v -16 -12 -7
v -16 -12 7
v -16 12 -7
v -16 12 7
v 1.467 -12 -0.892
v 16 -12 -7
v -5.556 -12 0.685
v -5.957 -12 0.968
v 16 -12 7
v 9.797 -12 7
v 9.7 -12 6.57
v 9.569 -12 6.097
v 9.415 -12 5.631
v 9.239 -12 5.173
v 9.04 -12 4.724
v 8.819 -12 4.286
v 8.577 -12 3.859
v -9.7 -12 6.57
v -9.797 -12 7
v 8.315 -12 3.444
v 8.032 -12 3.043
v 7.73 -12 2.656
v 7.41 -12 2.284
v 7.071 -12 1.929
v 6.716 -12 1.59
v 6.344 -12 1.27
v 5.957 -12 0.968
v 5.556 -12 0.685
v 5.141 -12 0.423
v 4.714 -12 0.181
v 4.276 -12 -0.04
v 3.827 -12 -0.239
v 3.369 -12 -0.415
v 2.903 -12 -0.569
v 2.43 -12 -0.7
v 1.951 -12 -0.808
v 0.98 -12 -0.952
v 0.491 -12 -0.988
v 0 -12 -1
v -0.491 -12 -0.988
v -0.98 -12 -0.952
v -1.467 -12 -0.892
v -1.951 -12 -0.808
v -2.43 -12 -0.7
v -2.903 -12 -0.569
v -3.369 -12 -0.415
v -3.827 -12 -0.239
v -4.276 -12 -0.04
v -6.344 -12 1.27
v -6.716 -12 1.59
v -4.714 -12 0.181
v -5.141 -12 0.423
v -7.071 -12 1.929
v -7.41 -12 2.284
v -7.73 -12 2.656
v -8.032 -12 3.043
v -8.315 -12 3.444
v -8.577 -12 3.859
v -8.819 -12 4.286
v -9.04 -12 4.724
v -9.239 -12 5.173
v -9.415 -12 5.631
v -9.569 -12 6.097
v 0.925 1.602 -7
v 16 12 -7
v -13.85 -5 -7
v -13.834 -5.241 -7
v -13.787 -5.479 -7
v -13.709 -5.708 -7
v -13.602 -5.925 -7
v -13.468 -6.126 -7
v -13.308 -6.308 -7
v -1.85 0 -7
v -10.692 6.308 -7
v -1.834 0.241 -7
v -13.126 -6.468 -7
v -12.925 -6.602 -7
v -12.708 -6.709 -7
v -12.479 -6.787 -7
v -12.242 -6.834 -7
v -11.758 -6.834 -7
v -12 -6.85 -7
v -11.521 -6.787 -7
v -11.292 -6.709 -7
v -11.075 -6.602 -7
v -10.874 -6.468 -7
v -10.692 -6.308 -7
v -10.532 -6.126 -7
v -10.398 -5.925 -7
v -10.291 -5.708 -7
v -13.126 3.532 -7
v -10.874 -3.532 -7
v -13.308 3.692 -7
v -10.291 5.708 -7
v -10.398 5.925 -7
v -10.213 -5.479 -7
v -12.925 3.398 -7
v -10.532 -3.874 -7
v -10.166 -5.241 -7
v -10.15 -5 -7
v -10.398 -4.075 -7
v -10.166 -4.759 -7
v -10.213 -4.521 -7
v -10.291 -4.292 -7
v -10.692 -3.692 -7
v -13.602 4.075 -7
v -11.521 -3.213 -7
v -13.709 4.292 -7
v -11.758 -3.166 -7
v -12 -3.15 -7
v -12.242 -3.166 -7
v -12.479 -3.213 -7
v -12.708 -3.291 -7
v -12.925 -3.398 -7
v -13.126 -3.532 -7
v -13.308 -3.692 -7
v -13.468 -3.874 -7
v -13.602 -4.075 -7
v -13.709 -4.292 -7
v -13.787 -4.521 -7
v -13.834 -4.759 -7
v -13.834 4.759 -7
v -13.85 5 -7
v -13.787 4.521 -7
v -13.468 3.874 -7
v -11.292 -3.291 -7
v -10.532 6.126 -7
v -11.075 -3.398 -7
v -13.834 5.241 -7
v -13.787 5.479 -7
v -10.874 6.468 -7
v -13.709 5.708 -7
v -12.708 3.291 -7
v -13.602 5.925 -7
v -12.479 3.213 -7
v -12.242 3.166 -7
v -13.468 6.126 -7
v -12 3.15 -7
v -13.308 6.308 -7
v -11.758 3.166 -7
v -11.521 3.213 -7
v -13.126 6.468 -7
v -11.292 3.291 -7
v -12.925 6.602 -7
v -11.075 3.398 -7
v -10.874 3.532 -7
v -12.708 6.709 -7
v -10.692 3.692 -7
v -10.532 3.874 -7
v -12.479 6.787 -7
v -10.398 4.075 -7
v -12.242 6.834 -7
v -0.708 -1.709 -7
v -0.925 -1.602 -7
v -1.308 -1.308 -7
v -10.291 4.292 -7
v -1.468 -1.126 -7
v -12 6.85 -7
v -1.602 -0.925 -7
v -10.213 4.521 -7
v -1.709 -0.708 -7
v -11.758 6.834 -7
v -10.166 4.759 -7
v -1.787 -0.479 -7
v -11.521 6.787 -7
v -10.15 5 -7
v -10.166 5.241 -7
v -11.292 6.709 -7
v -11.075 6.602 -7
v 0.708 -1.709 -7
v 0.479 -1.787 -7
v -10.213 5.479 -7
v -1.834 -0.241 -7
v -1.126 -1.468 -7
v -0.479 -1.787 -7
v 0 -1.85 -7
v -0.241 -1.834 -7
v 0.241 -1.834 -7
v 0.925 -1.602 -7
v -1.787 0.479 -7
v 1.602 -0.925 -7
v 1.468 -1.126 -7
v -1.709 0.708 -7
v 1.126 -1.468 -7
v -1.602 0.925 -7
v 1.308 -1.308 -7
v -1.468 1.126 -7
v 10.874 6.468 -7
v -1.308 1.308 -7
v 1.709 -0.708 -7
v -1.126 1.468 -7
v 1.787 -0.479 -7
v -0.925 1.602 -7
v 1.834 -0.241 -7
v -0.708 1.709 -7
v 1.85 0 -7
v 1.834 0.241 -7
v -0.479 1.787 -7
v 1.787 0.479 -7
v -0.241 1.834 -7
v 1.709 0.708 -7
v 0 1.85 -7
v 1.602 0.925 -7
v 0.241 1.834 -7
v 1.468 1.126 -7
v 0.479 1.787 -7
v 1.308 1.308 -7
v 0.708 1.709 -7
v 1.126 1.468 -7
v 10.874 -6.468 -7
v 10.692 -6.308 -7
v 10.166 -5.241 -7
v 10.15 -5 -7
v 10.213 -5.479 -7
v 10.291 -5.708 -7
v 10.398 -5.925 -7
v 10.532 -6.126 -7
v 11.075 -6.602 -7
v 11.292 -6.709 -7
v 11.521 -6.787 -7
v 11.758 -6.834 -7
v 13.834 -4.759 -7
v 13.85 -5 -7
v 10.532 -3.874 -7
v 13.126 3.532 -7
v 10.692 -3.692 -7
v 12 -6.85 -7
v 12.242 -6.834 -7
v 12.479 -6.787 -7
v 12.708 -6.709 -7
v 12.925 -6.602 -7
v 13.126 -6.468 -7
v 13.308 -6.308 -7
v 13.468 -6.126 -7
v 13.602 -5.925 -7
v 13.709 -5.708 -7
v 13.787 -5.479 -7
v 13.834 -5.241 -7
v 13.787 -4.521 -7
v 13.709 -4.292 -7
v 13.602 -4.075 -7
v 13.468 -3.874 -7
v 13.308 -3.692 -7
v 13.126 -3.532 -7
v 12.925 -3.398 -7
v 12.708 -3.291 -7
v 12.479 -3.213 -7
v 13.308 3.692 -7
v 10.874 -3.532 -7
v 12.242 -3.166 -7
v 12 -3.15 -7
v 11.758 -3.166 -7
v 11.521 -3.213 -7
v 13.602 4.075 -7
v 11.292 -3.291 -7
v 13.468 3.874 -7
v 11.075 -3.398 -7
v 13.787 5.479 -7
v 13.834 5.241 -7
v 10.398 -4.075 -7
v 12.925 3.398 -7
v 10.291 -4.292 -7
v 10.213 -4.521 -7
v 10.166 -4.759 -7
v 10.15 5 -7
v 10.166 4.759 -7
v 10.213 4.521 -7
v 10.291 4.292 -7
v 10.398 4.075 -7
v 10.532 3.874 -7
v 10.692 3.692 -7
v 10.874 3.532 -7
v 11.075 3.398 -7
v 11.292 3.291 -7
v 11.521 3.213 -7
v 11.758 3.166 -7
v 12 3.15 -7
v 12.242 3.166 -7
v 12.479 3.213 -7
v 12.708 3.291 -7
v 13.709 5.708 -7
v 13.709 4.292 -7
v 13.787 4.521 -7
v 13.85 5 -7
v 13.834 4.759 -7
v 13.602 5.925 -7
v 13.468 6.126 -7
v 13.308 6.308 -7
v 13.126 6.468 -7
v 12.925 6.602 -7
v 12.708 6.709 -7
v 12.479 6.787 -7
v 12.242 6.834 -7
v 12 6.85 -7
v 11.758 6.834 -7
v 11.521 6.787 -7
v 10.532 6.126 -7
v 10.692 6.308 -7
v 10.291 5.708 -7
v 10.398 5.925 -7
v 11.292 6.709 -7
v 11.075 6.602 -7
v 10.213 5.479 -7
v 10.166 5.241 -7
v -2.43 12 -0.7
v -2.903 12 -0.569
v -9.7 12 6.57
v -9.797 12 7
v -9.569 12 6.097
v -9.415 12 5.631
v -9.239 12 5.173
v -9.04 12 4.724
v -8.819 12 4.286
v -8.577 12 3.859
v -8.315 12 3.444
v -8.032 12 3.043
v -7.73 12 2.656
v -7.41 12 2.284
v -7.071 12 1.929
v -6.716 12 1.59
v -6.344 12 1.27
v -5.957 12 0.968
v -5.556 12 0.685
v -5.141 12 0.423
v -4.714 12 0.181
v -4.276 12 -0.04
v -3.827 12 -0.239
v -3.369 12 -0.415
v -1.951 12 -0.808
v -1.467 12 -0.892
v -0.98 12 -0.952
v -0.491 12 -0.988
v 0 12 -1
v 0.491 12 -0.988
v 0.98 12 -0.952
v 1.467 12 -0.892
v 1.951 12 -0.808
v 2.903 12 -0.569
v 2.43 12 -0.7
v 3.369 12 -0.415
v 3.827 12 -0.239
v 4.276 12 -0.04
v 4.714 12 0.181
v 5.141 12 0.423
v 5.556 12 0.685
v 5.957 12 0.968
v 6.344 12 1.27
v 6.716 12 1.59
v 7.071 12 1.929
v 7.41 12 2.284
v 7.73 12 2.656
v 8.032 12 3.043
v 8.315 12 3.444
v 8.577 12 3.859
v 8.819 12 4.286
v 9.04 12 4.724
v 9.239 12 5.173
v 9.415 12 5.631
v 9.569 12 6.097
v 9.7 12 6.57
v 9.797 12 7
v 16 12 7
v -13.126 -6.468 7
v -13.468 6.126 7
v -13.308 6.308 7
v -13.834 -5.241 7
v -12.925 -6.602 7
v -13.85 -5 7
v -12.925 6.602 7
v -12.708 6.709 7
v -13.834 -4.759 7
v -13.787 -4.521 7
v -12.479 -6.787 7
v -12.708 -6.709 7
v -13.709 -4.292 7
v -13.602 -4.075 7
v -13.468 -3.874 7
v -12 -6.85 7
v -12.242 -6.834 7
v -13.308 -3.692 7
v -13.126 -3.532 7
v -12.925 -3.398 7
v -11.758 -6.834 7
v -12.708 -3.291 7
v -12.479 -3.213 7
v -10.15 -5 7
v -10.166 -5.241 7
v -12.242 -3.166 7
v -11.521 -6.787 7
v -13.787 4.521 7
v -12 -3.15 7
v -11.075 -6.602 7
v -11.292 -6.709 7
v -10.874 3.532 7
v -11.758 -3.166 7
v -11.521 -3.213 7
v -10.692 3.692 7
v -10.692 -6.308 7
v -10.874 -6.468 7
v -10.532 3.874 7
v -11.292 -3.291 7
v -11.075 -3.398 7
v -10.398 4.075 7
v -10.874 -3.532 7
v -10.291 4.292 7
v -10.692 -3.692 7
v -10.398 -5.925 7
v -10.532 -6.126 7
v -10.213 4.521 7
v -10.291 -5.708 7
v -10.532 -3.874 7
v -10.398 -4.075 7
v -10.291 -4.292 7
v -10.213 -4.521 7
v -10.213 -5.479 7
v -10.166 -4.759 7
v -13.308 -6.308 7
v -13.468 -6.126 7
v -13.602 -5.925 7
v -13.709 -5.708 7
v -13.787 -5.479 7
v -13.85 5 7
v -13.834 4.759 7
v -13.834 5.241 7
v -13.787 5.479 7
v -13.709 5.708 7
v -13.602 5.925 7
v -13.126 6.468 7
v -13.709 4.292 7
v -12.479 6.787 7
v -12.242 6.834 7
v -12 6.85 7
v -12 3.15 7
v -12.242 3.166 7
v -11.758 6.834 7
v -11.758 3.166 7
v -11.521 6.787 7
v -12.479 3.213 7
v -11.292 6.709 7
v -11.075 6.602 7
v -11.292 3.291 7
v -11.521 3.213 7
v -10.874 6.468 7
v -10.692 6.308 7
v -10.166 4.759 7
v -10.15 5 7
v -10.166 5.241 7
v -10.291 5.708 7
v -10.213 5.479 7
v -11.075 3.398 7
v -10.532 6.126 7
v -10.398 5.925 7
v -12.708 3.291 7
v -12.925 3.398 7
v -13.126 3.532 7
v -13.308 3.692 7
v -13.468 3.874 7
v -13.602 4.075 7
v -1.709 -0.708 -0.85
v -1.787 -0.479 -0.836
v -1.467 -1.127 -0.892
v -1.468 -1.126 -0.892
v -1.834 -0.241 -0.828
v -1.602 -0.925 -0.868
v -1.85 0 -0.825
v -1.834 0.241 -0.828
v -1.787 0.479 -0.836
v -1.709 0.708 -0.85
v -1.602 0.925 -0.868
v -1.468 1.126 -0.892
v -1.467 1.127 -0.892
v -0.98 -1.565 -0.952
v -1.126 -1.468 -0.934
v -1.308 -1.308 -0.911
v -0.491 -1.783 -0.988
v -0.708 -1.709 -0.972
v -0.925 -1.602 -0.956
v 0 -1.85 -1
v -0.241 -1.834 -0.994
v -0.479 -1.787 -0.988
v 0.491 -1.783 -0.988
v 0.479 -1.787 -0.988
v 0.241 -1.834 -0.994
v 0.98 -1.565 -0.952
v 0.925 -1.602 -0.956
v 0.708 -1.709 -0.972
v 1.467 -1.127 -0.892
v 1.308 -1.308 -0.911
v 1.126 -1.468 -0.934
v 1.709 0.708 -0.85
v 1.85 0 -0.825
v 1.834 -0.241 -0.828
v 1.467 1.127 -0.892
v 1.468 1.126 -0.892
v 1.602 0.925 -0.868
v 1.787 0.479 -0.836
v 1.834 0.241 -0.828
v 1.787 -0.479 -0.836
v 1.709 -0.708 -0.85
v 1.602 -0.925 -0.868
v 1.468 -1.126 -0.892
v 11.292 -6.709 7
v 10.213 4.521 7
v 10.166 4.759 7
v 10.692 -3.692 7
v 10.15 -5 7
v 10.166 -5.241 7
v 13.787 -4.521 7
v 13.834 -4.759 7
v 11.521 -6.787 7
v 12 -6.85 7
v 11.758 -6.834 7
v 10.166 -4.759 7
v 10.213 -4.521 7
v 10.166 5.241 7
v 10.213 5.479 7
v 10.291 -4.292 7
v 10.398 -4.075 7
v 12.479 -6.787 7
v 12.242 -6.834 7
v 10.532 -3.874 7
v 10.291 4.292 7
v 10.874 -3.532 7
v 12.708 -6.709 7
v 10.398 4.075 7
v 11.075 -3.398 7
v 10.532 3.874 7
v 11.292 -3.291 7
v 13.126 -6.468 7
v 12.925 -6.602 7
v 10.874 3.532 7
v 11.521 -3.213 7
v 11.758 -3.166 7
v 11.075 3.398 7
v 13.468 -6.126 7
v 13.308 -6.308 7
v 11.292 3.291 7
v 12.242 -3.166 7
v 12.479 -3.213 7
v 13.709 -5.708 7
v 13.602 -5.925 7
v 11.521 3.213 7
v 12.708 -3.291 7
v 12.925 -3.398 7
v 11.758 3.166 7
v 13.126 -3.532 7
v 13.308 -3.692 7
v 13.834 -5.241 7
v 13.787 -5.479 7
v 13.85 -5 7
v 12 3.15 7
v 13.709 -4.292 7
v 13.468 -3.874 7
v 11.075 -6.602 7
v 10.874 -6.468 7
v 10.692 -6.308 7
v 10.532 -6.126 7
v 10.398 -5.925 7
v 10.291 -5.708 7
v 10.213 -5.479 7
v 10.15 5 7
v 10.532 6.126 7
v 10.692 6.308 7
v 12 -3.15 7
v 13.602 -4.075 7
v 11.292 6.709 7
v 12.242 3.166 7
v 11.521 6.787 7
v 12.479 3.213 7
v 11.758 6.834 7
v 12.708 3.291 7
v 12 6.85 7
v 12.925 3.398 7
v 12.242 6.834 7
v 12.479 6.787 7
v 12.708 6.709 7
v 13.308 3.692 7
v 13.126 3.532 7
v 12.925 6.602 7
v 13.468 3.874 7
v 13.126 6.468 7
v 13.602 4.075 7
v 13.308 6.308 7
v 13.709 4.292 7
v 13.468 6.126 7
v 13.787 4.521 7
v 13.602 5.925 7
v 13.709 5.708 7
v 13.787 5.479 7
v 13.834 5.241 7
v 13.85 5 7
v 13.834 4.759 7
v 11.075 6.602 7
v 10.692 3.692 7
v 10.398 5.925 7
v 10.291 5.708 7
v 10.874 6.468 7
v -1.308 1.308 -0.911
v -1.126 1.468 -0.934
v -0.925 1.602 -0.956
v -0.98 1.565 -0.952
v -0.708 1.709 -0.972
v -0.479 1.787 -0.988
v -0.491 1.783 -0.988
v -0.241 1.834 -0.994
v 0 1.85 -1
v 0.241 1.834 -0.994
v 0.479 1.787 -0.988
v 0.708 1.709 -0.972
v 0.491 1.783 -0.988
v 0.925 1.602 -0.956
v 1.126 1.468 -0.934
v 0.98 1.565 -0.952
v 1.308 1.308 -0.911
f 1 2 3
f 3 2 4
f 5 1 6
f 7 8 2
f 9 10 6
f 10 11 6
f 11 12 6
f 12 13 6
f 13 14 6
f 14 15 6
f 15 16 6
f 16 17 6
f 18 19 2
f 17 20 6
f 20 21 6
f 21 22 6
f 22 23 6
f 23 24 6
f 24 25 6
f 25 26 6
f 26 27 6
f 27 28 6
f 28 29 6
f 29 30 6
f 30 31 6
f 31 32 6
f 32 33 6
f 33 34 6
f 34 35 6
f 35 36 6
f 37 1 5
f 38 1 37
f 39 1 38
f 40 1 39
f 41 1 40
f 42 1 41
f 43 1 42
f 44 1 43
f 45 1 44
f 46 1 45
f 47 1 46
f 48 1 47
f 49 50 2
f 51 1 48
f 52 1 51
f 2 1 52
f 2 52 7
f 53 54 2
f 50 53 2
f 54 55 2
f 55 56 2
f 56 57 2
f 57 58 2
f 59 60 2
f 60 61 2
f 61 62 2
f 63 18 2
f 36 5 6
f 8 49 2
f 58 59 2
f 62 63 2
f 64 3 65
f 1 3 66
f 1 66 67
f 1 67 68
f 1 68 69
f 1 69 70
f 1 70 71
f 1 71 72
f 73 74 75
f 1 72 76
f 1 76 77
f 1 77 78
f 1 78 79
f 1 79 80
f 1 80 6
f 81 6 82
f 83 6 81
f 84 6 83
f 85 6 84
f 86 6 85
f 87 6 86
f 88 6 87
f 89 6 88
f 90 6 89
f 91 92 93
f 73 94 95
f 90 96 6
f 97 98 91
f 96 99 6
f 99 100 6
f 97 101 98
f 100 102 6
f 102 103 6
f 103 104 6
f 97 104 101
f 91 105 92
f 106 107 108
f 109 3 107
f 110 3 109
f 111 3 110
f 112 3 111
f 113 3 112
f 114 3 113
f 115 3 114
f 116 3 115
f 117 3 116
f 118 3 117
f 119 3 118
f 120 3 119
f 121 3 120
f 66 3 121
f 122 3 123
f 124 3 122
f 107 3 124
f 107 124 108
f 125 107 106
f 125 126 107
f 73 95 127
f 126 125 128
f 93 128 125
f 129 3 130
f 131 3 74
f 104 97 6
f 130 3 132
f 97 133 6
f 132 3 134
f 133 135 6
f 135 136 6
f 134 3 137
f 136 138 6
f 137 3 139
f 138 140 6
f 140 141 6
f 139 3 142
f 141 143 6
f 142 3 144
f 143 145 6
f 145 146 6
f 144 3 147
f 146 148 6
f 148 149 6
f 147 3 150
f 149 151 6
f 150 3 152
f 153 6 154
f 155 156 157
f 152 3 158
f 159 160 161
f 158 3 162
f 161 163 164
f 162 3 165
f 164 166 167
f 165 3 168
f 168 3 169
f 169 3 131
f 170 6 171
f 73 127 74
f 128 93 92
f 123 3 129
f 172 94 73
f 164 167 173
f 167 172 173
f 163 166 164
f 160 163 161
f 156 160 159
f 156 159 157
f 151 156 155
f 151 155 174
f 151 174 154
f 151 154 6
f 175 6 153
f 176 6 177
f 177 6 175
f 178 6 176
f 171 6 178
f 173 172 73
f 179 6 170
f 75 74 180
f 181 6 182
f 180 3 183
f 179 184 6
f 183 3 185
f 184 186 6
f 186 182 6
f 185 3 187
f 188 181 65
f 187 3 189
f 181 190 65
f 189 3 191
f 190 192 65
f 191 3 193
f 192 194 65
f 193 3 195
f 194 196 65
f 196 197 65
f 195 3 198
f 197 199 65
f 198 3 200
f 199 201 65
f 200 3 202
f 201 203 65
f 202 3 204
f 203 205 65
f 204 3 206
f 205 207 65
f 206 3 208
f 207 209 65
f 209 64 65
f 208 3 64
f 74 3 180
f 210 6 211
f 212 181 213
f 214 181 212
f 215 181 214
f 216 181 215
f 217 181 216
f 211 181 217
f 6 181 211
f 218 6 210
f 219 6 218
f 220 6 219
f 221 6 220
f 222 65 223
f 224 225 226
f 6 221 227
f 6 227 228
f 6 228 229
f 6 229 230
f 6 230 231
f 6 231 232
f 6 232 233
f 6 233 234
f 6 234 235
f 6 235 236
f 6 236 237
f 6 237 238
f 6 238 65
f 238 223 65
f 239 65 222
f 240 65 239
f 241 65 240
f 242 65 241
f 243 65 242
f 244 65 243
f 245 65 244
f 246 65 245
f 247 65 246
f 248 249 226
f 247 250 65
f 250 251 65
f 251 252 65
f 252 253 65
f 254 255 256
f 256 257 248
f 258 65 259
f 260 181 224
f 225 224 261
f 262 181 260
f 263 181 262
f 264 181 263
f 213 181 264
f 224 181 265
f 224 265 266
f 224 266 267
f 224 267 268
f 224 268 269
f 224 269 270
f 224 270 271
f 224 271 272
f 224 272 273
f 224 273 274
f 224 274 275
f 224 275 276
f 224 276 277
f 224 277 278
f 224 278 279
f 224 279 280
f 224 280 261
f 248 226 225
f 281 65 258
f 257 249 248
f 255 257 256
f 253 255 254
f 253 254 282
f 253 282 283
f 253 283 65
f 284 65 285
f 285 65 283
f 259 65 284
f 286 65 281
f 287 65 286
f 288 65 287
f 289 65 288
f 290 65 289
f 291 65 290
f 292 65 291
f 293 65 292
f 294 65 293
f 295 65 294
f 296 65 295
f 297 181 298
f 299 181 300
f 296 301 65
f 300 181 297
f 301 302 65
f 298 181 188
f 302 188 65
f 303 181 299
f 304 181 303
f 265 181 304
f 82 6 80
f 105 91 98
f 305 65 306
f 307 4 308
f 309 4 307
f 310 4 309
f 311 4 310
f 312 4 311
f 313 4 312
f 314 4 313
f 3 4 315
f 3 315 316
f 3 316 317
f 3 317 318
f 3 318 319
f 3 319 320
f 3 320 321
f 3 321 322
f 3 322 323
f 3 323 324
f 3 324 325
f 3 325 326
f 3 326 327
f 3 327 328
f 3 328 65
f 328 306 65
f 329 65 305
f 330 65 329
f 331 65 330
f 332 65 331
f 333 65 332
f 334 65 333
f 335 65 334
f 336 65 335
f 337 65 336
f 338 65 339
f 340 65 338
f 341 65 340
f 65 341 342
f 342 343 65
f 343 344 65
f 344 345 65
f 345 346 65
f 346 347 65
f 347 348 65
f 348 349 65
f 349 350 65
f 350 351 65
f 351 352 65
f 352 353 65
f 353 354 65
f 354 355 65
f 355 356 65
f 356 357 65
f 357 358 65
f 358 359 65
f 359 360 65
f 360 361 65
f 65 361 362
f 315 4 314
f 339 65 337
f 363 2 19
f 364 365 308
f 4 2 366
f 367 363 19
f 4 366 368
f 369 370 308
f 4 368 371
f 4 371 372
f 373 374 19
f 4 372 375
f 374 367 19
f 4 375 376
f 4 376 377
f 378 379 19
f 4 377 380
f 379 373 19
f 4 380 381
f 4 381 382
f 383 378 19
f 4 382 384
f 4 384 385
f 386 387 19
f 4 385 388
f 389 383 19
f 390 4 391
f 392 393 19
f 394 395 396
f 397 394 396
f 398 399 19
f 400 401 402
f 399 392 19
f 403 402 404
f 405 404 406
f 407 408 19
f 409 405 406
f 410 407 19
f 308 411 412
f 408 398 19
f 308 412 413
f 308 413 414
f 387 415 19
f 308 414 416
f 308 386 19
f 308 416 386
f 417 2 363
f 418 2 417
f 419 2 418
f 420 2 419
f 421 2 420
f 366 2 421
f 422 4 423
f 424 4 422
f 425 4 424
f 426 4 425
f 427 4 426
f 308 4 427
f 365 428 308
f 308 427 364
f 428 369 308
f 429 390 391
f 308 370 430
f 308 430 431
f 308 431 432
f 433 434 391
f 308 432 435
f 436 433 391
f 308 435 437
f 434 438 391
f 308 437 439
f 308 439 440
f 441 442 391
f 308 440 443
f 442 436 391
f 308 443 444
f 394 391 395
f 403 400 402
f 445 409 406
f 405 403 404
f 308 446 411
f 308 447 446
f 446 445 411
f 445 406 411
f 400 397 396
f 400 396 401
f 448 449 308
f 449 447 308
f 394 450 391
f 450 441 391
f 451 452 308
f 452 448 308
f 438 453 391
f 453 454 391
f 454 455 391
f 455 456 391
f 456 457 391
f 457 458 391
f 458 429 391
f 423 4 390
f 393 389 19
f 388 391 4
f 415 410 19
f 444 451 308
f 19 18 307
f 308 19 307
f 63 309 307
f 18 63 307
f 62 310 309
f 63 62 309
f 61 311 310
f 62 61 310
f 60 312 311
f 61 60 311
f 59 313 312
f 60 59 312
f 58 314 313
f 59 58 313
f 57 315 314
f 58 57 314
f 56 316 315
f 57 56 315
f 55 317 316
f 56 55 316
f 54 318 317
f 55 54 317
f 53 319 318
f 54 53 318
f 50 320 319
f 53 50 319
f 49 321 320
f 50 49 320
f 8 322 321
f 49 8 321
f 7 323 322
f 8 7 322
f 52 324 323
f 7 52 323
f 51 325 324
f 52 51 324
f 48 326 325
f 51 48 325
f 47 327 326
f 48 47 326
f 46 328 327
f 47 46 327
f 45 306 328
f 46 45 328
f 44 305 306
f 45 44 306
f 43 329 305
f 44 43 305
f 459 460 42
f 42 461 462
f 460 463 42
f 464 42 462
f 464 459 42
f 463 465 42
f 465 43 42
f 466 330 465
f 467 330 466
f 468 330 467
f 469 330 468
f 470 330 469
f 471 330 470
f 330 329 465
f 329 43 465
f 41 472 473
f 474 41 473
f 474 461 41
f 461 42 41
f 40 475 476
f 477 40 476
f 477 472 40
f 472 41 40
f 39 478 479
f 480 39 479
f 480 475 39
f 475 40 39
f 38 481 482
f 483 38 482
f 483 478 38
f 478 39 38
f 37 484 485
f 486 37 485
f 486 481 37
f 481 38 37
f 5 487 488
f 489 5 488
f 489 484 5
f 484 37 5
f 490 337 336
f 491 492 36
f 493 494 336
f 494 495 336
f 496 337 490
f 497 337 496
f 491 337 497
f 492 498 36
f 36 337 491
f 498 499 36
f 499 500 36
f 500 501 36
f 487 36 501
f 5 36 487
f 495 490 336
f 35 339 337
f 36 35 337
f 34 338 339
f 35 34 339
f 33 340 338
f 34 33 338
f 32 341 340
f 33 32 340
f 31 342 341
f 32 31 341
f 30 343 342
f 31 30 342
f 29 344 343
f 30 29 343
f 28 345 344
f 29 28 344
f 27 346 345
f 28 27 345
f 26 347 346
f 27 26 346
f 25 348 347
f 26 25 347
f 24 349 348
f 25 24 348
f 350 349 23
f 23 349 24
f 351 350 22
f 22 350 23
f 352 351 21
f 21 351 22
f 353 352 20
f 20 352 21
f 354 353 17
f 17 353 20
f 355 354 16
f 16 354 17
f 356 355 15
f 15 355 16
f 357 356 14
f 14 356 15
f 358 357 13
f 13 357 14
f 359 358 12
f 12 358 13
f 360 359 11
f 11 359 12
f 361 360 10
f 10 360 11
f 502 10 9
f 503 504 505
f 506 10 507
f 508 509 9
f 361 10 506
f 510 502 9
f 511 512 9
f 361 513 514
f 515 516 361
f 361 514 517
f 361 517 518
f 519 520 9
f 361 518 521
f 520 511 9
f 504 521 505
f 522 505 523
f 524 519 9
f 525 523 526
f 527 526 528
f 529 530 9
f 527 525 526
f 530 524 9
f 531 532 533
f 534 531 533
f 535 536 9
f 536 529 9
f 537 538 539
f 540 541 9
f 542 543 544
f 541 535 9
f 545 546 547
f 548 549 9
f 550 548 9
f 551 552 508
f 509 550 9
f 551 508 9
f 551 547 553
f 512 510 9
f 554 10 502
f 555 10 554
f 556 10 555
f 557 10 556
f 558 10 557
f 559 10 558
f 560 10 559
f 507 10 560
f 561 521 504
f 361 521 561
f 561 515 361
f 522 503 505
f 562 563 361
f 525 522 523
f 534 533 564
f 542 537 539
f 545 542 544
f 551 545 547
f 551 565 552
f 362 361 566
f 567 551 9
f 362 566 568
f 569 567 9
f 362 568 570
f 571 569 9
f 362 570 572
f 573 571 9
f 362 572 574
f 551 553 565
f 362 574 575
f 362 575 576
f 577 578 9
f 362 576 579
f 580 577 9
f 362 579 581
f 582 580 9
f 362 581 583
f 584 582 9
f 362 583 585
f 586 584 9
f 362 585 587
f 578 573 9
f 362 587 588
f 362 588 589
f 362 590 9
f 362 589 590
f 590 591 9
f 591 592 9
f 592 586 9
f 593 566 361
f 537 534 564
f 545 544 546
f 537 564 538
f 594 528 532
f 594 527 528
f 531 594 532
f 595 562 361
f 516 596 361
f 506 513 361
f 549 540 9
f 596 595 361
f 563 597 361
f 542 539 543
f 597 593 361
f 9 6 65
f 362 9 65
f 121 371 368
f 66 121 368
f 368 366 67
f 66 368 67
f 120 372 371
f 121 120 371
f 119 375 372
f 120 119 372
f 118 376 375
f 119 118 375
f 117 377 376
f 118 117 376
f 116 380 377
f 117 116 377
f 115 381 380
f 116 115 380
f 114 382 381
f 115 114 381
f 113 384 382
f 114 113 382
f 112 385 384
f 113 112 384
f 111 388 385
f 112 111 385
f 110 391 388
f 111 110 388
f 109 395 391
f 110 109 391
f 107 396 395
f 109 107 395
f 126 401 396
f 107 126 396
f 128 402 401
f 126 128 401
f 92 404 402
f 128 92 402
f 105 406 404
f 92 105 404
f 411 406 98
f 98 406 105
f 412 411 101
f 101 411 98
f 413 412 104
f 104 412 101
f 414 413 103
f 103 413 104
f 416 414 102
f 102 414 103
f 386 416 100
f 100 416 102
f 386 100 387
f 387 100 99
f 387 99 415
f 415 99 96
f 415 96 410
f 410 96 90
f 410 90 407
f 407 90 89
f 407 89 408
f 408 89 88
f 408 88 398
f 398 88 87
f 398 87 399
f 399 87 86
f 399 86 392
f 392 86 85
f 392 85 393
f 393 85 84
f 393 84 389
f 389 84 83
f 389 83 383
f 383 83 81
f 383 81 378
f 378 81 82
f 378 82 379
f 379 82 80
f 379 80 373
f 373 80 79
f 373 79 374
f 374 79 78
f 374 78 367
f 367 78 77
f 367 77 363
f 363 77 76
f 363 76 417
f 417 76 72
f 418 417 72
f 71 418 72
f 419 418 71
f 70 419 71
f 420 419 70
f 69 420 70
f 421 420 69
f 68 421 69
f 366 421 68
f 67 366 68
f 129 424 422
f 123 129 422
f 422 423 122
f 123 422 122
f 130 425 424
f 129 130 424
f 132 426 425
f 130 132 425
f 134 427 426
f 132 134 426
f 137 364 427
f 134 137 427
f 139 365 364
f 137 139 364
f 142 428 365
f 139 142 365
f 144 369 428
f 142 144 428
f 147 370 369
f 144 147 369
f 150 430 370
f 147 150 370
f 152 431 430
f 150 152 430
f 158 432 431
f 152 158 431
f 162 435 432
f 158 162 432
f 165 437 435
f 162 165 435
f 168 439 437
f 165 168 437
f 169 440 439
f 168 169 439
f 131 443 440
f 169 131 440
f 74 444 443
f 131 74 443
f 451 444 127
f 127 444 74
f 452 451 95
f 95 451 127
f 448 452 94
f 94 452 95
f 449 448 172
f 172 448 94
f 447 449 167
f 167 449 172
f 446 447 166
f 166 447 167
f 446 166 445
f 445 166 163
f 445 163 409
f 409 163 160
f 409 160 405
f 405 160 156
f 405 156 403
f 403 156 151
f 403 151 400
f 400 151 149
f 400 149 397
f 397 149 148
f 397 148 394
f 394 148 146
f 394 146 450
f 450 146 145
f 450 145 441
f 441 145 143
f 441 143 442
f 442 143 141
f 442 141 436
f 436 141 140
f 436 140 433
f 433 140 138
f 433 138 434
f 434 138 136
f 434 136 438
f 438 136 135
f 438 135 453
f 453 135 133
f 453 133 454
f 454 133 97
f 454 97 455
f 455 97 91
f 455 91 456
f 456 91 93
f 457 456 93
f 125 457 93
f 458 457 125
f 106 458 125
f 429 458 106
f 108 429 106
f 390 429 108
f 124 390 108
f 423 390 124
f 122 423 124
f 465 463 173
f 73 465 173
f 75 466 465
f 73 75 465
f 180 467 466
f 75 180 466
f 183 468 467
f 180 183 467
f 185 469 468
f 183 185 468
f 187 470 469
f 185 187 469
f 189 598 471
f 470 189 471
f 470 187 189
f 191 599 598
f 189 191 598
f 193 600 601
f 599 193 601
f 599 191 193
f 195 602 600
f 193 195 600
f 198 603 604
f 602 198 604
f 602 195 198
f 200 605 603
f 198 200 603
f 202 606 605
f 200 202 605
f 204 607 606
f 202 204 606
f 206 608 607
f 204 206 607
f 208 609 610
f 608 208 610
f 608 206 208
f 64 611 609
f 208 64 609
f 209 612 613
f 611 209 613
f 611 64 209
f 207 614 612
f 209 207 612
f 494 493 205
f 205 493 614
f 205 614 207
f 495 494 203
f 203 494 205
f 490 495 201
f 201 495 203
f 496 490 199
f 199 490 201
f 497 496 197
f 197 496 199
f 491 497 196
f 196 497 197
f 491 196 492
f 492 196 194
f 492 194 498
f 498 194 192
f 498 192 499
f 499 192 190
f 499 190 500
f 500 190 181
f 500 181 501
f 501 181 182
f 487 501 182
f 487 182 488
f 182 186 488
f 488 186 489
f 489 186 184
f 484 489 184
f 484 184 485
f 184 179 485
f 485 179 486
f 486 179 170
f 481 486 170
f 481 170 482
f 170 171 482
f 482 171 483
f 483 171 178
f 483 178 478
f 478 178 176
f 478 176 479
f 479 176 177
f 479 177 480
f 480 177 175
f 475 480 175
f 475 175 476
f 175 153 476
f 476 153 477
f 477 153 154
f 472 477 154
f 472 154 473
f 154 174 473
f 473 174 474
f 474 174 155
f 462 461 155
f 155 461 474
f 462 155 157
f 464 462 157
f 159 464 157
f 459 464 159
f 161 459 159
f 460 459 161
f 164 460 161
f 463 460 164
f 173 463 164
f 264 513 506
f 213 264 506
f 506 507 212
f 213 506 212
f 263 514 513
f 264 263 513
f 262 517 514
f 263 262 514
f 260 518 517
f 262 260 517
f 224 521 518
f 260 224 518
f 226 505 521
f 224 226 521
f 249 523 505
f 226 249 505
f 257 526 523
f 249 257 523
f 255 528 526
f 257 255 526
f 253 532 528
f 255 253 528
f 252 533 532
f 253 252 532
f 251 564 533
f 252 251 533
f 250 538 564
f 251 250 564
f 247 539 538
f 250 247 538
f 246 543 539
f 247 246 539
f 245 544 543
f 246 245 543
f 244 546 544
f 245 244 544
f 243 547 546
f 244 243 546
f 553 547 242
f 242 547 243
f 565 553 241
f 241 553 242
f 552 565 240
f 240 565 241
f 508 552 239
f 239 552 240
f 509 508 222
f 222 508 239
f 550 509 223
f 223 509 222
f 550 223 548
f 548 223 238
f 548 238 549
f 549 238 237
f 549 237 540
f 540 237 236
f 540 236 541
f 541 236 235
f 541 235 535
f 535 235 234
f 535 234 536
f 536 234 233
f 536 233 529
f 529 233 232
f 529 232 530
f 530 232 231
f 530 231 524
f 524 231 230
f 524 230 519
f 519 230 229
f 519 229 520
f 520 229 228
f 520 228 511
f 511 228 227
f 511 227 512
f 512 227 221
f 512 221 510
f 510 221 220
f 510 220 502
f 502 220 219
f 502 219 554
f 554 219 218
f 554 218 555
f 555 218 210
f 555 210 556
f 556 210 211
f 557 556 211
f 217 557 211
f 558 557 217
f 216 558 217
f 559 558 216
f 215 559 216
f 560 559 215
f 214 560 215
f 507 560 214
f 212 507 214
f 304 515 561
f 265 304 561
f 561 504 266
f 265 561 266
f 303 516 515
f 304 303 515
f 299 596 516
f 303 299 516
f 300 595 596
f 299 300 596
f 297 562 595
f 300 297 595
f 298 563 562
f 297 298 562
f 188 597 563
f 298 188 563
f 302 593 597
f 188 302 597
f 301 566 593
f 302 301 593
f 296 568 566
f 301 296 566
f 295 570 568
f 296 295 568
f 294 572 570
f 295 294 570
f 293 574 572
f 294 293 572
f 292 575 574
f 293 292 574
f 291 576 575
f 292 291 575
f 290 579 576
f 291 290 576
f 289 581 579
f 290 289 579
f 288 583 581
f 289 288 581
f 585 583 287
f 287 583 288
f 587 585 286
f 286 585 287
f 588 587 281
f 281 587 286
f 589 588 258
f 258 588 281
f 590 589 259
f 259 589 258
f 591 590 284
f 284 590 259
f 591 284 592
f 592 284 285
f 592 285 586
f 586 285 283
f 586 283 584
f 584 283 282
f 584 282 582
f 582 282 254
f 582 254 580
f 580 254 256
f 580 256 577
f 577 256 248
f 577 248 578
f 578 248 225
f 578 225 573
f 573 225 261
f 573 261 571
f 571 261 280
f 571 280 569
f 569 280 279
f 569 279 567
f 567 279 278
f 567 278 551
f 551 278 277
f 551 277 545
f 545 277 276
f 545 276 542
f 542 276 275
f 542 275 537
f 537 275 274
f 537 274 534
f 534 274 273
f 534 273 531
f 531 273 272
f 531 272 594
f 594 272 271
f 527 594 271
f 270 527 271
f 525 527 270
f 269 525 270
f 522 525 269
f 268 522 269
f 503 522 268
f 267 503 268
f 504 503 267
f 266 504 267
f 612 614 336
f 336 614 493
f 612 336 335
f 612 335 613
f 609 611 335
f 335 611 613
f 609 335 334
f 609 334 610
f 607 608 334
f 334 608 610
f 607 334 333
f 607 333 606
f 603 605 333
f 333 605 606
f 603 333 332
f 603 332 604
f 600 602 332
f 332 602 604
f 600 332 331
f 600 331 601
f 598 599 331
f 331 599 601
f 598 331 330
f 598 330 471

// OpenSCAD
module clamp_body()
{
screw_hole_r=1.85; // for 3.5mm screws
  difference()
    {
    // main body around spar hole
    cube([32,24,14], center=true);
    union()
      {
      translate([0,0,9])
        // main notch for spar
        rotate(90,[1,0,0])
        cylinder(h=50, r=10, center=true,$fn=128);

      // centre hole for bolting through spar
      cylinder(h=40,r=screw_hole_r,center=true,$fn=48);
      // Holes along side rails for bolting alongside spar
      translate([12,-5,-20])
      cylinder(h=40,r=screw_hole_r,centre=true,$fn=48);
      translate([-12,-5,-20])
      cylinder(h=40,r=screw_hole_r,centre=true,$fn=48);
      translate([12,5,-20])
      cylinder(h=40,r=screw_hole_r,centre=true,$fn=48);
      translate([-12,5,-20])
      cylinder(h=40,r=screw_hole_r,centre=true,$fn=48);
      
    }
  }
 
}

clamp_body();
